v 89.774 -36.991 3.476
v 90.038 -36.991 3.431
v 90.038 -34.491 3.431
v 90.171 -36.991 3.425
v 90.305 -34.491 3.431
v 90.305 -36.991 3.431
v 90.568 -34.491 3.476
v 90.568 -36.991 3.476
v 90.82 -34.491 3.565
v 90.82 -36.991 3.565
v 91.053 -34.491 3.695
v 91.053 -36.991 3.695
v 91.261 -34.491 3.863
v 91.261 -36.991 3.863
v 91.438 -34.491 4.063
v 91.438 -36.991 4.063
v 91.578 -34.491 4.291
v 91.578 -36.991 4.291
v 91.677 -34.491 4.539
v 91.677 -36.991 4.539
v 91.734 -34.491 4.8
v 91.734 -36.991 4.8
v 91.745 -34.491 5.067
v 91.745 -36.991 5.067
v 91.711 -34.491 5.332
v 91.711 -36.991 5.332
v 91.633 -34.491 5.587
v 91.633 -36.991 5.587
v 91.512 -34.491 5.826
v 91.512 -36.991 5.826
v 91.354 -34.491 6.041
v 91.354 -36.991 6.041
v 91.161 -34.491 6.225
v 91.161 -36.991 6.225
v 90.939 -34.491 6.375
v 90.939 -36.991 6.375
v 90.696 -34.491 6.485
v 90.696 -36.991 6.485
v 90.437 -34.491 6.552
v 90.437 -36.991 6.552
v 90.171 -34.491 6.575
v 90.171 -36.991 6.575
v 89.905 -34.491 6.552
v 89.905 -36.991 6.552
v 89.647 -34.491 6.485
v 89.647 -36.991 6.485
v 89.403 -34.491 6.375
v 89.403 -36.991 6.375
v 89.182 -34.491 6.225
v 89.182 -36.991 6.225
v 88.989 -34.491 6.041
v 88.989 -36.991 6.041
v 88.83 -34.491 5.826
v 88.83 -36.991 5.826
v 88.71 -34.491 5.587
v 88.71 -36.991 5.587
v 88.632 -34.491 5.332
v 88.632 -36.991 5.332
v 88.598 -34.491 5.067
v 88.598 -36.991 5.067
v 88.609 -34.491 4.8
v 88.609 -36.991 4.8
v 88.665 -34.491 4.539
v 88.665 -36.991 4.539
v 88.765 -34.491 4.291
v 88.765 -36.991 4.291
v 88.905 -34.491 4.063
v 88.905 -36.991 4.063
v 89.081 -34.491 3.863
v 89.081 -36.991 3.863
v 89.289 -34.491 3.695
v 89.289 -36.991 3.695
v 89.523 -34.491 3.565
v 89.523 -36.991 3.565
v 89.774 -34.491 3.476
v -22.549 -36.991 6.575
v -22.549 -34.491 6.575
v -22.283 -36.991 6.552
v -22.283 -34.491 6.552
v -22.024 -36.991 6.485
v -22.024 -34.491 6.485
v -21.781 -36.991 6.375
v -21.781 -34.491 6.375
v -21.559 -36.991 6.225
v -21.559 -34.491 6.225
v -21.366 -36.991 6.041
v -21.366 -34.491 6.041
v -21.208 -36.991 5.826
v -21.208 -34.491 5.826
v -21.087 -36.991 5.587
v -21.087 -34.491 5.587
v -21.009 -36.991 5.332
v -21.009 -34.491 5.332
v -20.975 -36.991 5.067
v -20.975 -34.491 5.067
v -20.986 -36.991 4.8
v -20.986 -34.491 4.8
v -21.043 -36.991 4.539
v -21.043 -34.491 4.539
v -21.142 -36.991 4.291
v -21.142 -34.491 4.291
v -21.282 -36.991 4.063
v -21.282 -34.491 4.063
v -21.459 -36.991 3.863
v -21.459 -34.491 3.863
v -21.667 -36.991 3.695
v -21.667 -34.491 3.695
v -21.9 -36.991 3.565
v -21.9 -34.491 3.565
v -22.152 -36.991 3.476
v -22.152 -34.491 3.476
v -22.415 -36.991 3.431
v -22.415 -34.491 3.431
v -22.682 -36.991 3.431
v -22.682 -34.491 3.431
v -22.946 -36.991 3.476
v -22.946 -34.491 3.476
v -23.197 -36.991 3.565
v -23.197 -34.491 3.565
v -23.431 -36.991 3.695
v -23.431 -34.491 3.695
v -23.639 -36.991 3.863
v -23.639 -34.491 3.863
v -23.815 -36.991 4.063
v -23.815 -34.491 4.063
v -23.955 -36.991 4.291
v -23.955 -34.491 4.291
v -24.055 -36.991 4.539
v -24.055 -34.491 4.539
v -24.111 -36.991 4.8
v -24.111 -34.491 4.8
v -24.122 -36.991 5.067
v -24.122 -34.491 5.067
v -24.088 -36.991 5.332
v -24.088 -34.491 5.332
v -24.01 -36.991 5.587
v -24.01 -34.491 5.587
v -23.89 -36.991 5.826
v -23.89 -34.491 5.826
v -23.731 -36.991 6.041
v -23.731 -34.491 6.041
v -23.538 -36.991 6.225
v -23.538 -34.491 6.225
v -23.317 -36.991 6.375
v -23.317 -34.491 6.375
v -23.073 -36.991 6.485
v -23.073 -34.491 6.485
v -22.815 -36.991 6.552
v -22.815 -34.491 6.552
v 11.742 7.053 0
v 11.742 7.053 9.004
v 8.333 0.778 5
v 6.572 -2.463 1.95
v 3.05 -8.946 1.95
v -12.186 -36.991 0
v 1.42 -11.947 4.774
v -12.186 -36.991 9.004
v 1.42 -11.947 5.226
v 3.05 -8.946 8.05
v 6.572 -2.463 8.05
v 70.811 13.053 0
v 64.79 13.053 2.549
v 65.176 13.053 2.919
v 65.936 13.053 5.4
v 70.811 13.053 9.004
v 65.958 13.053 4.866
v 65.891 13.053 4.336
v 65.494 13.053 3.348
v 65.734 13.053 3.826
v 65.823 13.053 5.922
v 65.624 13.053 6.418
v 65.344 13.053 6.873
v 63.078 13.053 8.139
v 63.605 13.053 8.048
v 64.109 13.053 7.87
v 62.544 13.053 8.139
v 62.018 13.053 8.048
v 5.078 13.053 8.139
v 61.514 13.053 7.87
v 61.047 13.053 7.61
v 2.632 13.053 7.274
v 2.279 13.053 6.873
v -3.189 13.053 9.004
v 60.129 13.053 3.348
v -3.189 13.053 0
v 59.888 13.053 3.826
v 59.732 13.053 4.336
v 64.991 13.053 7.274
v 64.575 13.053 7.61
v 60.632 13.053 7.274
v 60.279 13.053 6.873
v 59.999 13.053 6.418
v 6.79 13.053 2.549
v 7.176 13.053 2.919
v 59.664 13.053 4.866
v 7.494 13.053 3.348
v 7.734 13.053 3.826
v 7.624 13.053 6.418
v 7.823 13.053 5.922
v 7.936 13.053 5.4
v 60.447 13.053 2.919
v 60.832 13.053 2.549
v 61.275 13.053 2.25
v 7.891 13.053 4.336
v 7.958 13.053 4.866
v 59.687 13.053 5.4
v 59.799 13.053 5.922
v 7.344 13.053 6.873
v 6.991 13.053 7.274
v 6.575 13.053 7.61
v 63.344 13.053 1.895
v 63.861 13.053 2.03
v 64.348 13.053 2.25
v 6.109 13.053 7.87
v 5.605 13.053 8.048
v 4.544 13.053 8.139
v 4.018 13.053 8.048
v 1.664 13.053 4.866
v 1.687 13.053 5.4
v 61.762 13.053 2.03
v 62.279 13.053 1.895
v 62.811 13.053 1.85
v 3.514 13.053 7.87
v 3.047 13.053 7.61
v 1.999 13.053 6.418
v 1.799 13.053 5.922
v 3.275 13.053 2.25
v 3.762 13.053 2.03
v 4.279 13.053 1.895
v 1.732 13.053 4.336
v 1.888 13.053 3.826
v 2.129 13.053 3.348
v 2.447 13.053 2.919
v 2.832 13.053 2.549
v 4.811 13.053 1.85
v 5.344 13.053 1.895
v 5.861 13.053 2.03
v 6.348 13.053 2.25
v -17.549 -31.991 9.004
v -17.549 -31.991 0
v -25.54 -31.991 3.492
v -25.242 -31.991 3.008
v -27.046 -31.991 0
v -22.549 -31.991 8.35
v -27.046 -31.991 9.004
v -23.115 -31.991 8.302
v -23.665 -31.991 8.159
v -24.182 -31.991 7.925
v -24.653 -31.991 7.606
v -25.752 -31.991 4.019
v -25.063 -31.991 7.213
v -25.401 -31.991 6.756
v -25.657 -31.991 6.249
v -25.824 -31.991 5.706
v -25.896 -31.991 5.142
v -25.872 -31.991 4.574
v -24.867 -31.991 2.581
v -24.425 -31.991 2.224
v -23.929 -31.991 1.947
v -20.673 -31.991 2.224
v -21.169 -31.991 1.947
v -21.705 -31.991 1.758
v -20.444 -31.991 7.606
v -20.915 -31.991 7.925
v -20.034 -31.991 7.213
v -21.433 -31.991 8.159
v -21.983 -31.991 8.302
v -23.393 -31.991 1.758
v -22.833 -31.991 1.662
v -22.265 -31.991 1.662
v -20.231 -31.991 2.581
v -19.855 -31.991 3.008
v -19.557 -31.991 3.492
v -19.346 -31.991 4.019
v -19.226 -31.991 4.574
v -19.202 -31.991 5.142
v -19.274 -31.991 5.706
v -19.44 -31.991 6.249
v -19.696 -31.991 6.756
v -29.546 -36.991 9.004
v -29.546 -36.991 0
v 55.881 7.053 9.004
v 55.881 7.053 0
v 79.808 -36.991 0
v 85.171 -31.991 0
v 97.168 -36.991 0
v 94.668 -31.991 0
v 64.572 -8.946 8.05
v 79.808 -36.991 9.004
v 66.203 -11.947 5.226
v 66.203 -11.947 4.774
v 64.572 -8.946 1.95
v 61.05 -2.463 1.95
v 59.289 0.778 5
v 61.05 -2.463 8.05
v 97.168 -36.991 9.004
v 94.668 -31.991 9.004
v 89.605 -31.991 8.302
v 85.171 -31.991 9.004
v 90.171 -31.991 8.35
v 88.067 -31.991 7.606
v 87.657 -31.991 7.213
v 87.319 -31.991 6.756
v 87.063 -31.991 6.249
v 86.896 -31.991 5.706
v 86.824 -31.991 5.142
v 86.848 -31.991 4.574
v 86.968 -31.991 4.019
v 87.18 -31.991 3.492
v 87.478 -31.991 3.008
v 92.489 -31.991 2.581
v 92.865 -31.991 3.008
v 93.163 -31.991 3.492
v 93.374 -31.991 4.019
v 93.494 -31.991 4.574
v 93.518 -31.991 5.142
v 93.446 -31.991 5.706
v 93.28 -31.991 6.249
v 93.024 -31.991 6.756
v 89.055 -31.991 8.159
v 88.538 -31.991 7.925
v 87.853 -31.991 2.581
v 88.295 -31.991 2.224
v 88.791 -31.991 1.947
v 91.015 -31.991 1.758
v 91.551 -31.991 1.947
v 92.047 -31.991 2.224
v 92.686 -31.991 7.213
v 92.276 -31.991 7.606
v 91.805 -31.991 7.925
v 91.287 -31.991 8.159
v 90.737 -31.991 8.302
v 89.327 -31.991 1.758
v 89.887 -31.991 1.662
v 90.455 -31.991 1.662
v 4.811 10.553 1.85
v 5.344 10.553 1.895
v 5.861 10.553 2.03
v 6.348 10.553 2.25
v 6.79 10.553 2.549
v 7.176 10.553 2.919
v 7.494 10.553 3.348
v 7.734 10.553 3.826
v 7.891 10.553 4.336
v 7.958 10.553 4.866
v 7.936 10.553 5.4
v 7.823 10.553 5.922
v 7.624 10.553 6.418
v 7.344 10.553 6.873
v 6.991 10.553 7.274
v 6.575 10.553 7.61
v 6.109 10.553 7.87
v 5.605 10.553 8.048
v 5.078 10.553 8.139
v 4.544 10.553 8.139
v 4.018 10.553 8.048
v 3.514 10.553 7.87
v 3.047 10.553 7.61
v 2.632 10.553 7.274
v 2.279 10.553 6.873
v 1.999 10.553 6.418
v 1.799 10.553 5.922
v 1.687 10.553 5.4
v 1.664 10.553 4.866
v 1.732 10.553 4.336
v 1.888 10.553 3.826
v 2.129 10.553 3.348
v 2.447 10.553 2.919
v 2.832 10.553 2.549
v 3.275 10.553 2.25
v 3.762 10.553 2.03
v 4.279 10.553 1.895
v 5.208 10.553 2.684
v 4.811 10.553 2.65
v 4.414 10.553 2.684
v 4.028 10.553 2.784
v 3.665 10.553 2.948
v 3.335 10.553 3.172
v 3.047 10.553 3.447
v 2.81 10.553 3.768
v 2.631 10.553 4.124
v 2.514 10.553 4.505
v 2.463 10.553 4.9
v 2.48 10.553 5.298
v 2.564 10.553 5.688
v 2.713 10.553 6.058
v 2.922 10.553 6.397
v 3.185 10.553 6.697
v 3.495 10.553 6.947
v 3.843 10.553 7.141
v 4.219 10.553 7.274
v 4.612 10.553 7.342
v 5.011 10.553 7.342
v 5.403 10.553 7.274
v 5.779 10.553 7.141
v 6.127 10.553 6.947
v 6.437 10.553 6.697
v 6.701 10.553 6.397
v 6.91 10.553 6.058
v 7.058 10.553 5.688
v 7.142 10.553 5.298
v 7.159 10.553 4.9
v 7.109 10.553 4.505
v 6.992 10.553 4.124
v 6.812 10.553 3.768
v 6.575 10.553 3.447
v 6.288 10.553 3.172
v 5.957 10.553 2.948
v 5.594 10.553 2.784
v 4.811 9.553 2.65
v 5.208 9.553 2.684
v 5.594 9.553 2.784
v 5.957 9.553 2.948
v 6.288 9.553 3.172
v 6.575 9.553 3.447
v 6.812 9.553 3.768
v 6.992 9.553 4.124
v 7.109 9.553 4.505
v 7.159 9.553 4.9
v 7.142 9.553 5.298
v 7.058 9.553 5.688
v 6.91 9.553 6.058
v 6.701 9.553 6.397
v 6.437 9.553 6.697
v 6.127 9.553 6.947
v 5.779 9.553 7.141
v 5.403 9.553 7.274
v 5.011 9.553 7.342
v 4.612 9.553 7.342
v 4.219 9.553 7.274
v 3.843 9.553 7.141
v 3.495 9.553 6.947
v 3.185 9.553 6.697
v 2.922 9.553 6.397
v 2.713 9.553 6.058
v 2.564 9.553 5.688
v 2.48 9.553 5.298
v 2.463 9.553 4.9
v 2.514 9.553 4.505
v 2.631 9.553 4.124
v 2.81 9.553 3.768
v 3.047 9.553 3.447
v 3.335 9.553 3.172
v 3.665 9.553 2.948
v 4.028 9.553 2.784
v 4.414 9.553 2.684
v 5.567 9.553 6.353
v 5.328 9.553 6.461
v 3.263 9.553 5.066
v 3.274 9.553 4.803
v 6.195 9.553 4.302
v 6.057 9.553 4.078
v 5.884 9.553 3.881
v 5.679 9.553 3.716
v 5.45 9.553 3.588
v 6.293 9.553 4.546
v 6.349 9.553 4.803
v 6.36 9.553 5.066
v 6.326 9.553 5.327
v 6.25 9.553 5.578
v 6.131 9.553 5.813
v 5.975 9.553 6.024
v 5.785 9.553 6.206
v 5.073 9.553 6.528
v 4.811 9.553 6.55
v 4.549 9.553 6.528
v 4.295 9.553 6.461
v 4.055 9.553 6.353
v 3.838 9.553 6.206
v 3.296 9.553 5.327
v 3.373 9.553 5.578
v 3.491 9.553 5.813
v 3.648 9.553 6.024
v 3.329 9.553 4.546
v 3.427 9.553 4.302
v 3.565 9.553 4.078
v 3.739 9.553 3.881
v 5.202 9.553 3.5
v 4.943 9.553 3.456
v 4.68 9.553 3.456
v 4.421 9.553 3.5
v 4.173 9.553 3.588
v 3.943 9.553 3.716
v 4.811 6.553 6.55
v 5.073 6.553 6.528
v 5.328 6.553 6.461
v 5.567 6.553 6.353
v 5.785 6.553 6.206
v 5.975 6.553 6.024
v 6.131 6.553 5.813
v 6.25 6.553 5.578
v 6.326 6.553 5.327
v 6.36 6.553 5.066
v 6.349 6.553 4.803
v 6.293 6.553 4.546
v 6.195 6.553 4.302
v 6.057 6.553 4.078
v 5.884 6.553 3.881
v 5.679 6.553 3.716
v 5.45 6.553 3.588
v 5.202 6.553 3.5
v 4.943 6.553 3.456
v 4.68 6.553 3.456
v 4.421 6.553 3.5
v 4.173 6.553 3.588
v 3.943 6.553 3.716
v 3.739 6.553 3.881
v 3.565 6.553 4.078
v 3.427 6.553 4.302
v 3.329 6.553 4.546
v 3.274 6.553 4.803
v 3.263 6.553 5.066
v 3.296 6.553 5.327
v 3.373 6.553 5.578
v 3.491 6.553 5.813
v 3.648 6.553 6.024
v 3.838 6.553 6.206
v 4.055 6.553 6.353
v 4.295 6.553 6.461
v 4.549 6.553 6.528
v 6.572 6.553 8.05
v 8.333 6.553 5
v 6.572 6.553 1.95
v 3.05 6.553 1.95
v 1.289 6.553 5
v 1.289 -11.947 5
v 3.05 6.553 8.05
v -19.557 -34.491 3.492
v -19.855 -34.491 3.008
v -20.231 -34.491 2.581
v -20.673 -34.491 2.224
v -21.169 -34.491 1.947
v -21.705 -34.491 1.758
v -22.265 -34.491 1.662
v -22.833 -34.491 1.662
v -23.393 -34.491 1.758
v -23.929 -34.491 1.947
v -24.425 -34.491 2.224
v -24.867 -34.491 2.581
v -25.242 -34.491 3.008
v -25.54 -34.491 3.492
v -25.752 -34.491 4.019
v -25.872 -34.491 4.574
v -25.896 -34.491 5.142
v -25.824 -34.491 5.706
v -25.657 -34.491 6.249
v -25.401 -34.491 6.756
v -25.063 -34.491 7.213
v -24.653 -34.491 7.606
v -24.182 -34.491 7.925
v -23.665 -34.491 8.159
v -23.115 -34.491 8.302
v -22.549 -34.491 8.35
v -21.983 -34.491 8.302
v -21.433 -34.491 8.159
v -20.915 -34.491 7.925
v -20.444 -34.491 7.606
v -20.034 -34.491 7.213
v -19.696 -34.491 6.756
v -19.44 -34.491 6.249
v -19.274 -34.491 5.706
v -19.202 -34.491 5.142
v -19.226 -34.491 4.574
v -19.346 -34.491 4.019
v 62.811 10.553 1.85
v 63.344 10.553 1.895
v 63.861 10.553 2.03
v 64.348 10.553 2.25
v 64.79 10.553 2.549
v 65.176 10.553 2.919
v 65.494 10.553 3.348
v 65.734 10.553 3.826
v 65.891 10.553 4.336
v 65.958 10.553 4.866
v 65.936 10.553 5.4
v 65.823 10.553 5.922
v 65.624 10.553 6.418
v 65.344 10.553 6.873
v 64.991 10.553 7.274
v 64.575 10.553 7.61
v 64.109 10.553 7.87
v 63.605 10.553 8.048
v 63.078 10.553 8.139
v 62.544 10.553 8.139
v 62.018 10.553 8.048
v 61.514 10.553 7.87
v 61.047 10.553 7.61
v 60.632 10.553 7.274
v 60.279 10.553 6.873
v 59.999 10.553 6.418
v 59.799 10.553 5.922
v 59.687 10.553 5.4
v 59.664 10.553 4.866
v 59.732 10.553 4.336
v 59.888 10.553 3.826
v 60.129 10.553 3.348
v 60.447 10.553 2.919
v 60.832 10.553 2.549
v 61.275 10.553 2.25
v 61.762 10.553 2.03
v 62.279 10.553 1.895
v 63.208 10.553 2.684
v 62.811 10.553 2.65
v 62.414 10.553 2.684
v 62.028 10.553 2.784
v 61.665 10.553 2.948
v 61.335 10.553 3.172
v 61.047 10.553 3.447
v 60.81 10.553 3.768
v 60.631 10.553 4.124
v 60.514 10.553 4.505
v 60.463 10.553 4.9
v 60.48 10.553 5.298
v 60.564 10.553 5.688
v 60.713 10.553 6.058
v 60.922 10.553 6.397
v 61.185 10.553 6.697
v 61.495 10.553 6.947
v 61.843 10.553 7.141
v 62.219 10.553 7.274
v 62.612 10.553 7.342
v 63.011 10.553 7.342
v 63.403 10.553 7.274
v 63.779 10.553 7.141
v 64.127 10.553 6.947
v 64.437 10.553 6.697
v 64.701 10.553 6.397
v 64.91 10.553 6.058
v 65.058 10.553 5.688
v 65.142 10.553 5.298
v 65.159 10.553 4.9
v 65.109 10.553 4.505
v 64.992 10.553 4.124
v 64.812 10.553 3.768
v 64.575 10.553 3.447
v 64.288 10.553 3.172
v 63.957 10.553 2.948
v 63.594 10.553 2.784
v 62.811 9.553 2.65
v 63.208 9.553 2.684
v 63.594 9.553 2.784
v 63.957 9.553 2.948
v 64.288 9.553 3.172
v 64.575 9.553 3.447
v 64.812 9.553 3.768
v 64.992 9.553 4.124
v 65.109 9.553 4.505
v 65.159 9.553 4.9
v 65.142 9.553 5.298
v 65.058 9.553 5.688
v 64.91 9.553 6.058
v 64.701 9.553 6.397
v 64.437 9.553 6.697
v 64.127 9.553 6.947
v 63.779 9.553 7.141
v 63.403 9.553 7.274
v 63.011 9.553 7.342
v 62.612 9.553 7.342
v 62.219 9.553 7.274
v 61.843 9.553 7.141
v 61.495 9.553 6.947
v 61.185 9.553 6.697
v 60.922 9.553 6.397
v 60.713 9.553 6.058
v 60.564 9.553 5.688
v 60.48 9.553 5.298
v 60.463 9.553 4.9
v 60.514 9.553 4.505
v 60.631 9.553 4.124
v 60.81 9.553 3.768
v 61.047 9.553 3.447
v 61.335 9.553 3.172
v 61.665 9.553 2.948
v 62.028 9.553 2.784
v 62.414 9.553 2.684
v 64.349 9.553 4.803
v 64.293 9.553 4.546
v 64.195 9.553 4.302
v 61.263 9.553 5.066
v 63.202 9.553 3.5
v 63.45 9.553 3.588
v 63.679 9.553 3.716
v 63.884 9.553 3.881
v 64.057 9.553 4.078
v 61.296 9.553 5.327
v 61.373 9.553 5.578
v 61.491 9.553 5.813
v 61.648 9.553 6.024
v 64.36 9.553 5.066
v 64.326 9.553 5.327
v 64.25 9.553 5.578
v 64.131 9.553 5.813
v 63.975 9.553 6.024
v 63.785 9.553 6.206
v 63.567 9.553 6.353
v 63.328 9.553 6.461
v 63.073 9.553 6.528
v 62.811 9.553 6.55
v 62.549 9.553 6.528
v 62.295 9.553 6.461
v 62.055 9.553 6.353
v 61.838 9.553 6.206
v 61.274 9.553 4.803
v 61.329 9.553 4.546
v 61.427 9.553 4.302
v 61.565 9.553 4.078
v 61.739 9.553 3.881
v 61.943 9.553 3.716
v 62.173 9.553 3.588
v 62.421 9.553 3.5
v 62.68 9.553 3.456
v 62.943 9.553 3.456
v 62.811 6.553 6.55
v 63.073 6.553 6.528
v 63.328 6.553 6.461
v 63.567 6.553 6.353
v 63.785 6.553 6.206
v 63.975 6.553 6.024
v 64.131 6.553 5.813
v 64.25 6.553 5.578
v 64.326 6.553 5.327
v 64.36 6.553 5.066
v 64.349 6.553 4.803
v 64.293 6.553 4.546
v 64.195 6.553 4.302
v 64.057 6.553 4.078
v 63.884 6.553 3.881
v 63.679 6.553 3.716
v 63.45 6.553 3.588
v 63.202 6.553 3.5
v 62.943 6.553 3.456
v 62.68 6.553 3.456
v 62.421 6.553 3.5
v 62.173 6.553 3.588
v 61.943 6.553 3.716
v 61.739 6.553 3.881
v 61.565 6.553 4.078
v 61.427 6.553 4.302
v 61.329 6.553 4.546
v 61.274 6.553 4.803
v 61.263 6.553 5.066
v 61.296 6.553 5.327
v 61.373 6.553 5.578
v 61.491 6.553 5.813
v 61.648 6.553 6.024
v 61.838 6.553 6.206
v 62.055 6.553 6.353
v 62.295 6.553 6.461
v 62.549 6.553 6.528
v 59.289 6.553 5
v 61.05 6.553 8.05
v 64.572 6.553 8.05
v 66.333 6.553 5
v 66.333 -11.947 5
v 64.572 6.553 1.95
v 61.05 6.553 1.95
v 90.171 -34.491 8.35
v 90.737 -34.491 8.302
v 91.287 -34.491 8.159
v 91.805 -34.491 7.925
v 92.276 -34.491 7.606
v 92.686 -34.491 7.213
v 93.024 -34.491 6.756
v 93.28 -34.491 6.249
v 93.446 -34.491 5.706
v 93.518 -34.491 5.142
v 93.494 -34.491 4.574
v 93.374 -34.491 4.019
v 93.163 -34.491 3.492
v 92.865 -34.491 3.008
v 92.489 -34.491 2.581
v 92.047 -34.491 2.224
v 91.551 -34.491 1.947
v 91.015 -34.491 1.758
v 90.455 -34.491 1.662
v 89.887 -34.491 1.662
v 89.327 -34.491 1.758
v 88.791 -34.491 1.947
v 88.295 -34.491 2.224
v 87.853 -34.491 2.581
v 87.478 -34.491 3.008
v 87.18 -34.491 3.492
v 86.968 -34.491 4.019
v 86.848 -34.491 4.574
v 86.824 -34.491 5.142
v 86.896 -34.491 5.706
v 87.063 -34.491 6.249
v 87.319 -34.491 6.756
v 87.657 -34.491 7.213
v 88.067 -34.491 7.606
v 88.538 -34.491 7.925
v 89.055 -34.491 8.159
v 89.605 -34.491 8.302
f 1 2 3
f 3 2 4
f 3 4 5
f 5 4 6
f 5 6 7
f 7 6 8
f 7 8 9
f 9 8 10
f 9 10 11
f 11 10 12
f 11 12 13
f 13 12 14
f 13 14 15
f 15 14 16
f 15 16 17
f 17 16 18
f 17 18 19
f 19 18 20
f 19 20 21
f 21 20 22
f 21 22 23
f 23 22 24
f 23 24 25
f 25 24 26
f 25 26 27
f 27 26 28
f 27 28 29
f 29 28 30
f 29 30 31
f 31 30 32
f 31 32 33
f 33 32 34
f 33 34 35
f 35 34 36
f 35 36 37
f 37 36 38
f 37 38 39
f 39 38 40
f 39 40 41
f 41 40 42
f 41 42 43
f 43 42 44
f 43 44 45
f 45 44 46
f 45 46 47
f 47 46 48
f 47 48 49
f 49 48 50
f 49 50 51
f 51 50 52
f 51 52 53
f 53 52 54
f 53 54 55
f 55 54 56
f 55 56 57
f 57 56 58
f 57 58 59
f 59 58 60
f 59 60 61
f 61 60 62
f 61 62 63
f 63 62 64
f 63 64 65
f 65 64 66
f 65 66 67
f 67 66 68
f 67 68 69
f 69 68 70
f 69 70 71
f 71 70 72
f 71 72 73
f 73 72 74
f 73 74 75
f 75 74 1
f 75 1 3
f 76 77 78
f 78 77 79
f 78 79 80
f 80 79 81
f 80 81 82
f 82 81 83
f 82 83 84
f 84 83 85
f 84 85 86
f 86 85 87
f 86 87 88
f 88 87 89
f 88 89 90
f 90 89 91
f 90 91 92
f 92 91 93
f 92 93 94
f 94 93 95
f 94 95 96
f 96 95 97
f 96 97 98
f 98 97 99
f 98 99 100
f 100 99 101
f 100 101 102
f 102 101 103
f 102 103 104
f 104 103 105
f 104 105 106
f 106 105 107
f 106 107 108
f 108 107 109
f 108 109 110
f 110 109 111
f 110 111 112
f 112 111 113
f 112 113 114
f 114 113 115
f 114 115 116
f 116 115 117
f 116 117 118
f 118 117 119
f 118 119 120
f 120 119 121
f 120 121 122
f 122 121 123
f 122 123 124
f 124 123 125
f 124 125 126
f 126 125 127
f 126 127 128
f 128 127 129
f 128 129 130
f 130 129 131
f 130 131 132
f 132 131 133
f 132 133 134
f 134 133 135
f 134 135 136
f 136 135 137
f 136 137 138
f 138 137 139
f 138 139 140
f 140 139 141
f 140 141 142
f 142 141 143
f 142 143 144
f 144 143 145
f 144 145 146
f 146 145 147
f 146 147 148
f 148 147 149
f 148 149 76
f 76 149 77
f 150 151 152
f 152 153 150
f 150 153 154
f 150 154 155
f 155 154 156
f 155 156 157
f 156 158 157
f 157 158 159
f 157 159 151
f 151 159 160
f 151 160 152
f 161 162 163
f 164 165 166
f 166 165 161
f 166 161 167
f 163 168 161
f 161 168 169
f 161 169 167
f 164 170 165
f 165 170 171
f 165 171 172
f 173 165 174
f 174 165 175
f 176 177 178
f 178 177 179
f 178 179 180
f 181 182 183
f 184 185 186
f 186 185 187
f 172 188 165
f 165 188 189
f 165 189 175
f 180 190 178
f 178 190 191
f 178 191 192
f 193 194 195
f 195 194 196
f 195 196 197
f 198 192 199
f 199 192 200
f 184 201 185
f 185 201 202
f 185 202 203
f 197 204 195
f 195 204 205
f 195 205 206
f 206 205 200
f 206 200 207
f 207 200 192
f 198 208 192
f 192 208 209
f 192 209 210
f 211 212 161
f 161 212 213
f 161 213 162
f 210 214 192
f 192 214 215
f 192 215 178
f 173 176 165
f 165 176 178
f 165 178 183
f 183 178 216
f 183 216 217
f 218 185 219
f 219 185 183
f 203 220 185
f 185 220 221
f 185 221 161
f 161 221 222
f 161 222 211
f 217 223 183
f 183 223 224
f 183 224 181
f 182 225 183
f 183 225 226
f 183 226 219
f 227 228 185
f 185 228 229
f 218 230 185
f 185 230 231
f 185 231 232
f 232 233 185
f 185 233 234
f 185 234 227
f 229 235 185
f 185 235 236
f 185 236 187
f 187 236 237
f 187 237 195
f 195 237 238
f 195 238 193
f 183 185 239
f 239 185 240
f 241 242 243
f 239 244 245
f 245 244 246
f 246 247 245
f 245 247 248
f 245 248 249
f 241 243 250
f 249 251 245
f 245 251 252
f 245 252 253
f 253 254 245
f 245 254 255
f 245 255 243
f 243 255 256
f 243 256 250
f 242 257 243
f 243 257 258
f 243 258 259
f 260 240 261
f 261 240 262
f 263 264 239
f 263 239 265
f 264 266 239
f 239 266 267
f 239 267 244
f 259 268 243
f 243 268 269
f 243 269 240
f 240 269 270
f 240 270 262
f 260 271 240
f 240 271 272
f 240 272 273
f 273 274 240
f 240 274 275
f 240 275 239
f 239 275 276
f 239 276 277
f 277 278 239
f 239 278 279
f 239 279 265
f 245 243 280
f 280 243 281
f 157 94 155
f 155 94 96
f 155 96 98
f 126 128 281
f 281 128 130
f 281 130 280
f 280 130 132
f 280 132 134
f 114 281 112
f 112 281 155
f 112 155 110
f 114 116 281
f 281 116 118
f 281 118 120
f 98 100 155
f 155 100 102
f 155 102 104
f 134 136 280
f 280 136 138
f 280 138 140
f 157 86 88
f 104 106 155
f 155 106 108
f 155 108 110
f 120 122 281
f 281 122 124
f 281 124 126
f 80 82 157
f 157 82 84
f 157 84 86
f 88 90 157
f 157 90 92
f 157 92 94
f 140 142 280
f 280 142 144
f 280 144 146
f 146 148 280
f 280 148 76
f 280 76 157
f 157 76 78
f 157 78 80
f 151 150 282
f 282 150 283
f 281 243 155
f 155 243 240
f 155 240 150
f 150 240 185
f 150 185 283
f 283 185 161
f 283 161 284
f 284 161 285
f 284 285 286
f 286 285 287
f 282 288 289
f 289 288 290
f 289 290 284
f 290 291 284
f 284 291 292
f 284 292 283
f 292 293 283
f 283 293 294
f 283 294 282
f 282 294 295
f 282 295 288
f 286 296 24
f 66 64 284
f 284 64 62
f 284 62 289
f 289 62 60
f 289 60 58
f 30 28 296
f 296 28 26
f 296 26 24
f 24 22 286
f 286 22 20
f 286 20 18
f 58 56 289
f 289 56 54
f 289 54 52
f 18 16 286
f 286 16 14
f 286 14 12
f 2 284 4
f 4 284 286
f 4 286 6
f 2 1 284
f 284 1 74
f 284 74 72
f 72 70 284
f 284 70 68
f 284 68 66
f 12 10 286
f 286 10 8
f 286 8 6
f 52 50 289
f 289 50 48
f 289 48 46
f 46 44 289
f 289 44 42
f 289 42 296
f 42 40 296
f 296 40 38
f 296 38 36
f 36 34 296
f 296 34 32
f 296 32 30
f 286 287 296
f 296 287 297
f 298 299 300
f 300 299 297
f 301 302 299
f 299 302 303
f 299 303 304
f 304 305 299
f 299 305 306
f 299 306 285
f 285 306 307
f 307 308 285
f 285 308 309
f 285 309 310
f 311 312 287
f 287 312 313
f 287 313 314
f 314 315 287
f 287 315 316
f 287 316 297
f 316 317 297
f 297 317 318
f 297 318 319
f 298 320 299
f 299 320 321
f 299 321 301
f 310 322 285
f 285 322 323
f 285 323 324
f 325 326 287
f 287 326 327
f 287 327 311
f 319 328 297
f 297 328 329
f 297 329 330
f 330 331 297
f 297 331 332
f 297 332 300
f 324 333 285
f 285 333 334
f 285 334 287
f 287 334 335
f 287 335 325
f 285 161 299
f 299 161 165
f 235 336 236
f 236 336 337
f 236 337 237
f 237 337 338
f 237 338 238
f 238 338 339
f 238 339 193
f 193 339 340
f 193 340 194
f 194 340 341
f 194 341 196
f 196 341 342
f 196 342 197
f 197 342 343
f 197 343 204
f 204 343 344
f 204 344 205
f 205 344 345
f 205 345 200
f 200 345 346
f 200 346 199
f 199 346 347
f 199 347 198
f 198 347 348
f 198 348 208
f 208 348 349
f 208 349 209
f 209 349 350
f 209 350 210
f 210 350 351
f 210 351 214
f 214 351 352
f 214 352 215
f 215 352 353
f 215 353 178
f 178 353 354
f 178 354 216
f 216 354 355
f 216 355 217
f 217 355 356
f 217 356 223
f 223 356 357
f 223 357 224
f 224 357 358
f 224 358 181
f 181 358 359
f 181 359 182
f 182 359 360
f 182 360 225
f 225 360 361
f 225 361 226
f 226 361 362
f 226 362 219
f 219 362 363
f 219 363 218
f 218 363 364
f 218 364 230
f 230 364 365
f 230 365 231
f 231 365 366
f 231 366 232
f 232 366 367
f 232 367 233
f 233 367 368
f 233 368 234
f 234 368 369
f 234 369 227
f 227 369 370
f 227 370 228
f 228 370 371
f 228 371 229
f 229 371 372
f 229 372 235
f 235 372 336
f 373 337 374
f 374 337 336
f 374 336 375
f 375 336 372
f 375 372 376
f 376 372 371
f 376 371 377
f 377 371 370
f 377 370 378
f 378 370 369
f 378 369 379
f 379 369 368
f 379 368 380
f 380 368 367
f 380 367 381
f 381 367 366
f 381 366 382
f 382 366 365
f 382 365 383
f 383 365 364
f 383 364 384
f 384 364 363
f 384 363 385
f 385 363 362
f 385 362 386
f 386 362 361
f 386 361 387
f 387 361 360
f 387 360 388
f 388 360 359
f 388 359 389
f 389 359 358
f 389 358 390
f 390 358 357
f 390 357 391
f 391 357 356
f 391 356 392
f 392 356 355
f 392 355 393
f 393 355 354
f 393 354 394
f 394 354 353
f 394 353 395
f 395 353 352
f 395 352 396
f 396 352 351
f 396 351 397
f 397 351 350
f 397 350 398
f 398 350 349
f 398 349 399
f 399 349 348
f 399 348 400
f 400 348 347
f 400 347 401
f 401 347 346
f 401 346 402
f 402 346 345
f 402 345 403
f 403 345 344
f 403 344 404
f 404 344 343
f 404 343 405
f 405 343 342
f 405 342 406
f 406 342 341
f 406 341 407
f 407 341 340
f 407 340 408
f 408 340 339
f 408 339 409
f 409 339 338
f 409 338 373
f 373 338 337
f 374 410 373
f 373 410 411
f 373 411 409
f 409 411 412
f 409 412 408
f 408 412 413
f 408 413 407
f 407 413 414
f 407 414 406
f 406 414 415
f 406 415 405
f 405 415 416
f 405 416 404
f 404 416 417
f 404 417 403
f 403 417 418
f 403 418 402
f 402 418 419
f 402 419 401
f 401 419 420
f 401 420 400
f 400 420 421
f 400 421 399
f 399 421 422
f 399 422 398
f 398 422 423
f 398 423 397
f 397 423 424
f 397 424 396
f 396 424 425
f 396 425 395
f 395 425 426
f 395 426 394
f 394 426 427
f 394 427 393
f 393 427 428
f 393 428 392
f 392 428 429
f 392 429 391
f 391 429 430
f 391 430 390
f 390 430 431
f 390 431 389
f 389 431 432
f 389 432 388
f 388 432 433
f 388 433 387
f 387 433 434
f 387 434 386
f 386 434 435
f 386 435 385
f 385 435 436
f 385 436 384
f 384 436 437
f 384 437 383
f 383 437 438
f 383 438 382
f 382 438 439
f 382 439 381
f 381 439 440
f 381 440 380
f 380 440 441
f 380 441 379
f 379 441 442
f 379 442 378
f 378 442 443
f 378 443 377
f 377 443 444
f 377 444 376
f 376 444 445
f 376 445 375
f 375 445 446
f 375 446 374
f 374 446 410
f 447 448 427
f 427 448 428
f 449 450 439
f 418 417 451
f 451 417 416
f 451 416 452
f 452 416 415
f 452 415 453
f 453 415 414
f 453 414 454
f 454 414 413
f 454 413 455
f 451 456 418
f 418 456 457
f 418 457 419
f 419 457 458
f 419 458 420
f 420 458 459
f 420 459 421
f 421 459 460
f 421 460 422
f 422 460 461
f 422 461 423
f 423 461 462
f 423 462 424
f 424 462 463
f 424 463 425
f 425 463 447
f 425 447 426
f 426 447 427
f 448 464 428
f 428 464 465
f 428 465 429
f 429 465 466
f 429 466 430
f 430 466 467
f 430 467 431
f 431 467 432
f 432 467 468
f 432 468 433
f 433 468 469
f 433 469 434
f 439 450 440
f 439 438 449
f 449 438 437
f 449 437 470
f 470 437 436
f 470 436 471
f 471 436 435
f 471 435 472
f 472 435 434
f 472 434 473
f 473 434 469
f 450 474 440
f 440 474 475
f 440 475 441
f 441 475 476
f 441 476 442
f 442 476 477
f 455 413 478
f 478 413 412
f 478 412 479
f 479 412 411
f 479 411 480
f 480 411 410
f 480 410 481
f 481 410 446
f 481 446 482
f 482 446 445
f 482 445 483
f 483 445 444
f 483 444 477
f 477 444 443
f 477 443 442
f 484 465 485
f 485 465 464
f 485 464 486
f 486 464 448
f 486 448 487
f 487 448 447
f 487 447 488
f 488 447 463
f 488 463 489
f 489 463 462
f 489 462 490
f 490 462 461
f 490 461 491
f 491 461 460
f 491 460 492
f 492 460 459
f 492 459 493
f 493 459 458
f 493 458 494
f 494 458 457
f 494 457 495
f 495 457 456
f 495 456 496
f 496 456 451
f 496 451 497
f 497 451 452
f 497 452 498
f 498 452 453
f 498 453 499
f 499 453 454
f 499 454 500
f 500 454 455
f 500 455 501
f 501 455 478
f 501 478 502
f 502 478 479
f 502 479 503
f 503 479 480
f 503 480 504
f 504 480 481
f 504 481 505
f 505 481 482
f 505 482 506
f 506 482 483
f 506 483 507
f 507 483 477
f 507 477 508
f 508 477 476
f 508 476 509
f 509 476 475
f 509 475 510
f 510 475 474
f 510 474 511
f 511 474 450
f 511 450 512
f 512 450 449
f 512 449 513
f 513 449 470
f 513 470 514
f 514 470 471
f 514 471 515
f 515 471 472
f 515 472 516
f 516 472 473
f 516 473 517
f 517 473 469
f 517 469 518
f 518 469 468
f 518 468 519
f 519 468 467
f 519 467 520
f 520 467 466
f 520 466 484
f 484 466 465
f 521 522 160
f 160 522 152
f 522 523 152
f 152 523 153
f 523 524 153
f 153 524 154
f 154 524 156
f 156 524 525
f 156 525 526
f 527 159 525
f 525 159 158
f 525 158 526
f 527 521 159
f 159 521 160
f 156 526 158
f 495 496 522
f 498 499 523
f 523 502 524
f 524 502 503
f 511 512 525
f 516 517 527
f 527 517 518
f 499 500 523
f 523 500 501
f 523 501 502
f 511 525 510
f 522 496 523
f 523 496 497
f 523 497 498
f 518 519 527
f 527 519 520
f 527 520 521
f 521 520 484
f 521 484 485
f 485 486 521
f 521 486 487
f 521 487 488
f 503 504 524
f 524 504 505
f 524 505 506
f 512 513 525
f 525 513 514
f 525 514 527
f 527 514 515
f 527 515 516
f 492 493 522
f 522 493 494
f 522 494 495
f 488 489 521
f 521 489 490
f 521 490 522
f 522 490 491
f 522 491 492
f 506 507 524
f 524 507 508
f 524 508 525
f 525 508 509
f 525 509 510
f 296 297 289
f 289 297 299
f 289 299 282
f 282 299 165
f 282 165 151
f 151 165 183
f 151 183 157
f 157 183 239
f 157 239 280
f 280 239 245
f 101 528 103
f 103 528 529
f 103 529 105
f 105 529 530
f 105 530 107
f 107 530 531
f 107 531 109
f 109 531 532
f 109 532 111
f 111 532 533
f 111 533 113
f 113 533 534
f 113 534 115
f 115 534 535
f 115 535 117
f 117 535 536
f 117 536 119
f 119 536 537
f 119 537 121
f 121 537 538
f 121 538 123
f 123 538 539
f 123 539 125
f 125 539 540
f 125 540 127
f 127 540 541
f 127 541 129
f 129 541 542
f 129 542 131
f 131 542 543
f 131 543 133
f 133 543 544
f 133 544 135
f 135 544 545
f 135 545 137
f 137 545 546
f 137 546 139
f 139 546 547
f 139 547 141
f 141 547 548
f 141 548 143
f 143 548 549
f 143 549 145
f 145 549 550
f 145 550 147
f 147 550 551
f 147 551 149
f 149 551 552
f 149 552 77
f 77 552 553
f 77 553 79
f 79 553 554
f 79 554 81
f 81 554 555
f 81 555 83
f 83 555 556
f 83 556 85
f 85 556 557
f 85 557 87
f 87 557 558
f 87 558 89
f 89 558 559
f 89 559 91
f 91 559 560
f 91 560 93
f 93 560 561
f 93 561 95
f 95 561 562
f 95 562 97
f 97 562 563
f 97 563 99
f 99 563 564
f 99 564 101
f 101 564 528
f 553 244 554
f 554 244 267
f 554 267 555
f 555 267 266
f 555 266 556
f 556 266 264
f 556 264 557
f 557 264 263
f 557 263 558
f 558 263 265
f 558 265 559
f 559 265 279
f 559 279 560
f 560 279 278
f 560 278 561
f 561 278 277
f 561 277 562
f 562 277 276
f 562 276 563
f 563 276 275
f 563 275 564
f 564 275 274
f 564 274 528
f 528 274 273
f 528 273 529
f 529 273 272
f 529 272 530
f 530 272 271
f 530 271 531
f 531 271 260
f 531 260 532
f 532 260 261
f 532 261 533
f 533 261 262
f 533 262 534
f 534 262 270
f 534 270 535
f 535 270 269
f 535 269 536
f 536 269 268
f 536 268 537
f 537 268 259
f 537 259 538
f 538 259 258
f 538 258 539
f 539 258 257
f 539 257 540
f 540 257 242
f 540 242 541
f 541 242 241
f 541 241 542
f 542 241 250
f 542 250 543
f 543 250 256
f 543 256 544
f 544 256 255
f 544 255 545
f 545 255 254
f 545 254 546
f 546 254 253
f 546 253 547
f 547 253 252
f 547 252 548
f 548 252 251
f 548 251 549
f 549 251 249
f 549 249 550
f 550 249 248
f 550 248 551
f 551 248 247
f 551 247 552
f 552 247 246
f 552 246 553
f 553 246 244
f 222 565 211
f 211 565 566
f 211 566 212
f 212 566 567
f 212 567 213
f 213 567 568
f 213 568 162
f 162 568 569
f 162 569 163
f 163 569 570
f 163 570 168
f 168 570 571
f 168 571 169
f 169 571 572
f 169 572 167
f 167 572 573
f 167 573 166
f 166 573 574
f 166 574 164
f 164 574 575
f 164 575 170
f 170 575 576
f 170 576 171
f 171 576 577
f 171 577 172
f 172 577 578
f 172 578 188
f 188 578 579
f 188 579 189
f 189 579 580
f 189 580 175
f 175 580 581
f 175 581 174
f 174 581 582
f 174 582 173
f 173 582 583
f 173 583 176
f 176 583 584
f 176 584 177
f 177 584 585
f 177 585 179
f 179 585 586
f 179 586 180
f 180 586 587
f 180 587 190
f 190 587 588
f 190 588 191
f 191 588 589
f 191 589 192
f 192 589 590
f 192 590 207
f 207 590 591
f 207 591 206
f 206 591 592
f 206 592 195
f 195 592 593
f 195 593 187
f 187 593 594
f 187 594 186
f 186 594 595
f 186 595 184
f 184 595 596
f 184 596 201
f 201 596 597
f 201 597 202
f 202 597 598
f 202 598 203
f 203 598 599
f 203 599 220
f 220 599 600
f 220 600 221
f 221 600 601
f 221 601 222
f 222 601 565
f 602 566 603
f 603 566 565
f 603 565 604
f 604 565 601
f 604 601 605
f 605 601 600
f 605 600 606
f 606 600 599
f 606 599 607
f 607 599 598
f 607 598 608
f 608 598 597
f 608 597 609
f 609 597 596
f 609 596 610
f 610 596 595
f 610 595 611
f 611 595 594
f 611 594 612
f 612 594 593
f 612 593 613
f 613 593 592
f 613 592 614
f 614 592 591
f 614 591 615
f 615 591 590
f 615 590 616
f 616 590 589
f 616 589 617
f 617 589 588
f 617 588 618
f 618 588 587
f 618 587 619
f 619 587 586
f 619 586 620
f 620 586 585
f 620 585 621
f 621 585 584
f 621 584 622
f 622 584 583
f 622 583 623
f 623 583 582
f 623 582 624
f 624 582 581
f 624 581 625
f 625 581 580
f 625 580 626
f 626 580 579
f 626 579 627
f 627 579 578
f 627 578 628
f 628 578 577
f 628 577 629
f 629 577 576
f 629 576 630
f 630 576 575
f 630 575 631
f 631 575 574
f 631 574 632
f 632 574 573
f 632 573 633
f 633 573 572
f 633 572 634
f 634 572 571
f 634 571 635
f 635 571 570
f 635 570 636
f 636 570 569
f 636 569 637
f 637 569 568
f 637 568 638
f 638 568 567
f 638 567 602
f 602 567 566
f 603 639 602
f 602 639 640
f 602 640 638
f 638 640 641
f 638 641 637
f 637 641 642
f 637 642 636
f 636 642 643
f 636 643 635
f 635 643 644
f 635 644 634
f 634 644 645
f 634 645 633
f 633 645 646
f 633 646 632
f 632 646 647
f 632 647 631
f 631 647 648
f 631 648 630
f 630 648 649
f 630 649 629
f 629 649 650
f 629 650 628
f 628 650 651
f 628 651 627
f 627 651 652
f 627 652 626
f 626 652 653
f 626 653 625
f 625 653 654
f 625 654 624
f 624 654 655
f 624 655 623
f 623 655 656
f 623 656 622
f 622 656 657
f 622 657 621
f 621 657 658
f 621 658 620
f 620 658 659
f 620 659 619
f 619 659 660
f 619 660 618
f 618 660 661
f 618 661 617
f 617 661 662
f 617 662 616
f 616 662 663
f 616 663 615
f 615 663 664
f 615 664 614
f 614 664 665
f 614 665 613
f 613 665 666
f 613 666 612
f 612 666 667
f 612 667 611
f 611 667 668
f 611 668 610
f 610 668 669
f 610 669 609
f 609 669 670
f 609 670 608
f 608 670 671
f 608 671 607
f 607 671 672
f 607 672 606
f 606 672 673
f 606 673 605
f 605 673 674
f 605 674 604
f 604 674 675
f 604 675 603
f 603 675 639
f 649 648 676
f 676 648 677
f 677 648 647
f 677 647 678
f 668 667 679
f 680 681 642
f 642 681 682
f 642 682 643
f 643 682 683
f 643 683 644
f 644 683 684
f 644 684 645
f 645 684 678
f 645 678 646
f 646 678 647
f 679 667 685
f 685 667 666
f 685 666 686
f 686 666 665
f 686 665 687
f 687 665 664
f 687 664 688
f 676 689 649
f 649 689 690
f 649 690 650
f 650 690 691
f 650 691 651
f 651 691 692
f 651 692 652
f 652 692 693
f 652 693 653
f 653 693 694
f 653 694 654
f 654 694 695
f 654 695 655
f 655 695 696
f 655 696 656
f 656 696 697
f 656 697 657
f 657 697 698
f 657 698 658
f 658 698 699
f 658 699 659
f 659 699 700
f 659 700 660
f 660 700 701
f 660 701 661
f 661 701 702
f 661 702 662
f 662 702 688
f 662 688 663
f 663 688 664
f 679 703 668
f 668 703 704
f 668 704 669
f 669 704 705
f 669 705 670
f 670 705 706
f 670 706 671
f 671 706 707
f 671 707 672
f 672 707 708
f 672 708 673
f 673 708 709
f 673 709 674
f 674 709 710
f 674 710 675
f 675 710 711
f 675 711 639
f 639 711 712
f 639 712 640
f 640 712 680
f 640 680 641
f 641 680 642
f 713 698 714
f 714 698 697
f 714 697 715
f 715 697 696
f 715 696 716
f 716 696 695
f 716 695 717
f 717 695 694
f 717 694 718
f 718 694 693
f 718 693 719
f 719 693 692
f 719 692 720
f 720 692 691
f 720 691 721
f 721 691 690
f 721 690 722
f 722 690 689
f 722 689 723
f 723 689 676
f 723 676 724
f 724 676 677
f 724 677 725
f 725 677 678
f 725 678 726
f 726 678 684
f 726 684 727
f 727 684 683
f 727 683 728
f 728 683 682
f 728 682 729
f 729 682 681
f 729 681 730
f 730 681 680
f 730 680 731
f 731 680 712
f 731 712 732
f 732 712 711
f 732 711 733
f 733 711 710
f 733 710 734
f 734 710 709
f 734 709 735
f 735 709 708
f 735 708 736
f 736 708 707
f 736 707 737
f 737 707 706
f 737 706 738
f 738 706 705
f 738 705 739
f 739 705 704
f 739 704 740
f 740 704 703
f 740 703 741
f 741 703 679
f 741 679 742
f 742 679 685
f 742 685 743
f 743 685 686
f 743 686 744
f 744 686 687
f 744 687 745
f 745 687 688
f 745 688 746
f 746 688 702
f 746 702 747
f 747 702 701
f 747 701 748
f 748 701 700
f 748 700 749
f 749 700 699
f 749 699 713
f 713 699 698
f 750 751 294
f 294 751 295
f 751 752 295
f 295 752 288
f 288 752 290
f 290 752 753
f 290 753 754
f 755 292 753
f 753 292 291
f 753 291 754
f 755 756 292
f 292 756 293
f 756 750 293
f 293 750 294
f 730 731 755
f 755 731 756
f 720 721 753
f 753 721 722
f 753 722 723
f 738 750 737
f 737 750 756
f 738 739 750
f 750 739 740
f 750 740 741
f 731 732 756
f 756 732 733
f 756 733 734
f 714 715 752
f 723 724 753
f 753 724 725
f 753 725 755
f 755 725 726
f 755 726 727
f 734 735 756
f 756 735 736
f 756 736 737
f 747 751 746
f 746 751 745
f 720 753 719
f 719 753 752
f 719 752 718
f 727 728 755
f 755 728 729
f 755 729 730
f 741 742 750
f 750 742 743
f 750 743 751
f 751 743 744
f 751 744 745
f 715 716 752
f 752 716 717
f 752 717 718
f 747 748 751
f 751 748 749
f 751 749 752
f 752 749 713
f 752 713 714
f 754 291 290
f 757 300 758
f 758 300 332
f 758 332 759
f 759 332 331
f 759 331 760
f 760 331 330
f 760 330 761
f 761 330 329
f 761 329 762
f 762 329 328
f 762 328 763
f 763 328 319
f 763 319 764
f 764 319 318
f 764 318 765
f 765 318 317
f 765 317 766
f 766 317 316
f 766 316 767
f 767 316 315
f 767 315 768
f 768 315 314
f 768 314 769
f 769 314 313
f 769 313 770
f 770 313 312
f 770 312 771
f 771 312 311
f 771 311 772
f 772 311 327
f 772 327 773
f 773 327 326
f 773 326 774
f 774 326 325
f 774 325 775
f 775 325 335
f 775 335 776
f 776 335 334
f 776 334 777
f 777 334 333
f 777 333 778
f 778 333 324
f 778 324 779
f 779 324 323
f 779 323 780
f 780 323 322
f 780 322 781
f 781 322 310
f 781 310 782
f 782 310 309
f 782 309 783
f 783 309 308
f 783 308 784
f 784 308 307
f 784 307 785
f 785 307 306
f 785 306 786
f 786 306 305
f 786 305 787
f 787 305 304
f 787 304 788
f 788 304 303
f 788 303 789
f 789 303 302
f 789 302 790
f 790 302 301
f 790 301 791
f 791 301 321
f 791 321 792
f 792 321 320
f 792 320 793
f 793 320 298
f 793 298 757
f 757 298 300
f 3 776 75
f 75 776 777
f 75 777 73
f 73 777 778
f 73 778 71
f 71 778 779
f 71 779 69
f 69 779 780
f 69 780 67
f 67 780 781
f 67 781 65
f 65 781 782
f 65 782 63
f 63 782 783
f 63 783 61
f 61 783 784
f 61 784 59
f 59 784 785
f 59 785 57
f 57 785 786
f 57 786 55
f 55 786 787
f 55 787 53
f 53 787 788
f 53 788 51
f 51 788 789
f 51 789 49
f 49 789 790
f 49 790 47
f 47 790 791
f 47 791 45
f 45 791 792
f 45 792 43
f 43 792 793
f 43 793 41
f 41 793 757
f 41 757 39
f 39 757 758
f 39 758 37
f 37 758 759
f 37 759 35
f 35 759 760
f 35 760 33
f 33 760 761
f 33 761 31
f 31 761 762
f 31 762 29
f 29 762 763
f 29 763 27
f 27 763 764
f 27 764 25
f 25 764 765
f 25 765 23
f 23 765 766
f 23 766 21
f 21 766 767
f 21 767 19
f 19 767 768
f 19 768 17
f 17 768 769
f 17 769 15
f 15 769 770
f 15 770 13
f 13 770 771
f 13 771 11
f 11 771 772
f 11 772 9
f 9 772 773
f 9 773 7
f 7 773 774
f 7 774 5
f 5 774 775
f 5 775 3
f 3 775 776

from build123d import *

# Parameters (mm, degrees)
EXTRUDE_1_DEPTH      = 10
SKETCH_7_R           = 1.55
CUT_EXTRUDE_1_DEPTH  = 47.544157215
CUT_EXTRUDE_2_DEPTH  = 18.5
SKETCH_19_W          = 126.714157214
SKETCH_19_H          = 0.99604336
CUT_EXTRUDE_14_DEPTH = 51.044157215
SKETCH_23_R          = 1.575
CUT_EXTRUDE_16_DEPTH = 10
SKETCH_24_R          = 3.35
CUT_EXTRUDE_17_DEPTH = 2.5


with BuildPart() as part:
    # 草图1 → 凸台-拉伸1 (new body)
    with BuildSketch(Plane.XY):
        Polygon((-3.188712924, 13.052848472), (33.811287076, 13.052848472), (33.811287076, 7.052848472), (15.60198174, 7.052848472), (11.74198174, 7.052848472), (-12.185815886, -36.991308743), (-14.185815886, -36.991308743), (-29.545791531, -36.991308743), (-27.045791531, -31.991308743), (-17.548712924, -31.991308743), align=None)
    extrude_1 = extrude(amount=EXTRUDE_1_DEPTH)

    # 镜向1: 凸台-拉伸1 across plane
    add(extrude_1.mirror(Plane(origin=(33.811287076, 13.052848472, 10), x_dir=(0, 0, 1), z_dir=(-1, 0, 0))))

    # 草图5 → 切除-旋转7 (revolve, cut)
    with BuildSketch(Plane.XY.offset(5)):
        Polygon((7.961287076, 13.052848472), (7.961287076, 10.552848472), (7.161287076, 10.552848472), (7.161287076, 9.552848472), (6.361287076, 9.552848472), (4.811287076, 9.552848472), (4.811287076, 13.052848472), align=None)
    cut_revolve_7 = revolve(axis=Axis((4.811287076, 9.552848472, 5), (0, 1, 0)), mode=Mode.SUBTRACT)

    # 草图7 → 切除-拉伸1 (cut, through all)
    with BuildSketch(Plane(origin=(0, 9.552848472, 0), x_dir=(1, 0, 0), z_dir=(0, 1, 0))):
        with Locations((4.811287076, -5)):
            Circle(SKETCH_7_R)
    cut_extrude_1 = extrude(amount=-CUT_EXTRUDE_1_DEPTH, mode=Mode.SUBTRACT)

    # 草图8 → 切除-拉伸2 (cut)
    with BuildSketch(Plane(origin=(0, -11.947151528, 0), x_dir=(1, 0, 0), z_dir=(0, 1, 0))):
        Polygon((8.333123718, -5), (6.572205397, -1.95), (3.050368755, -1.95), (1.289450434, -5), (3.050368755, -8.05), (6.572205397, -8.05), align=None)
    cut_extrude_2 = extrude(amount=CUT_EXTRUDE_2_DEPTH, mode=Mode.SUBTRACT)

    # 草图19 → 切除-拉伸14 (cut, through all)
    with BuildSketch(Plane(origin=(0, 13.052848472, 0), x_dir=(1, 0, 0), z_dir=(0, 1, 0))):
        with Locations((33.811287076, -9.50197832)):
            Rectangle(SKETCH_19_W, SKETCH_19_H)
    extrude(amount=-CUT_EXTRUDE_14_DEPTH, mode=Mode.SUBTRACT)

    # 草图23 → 切除-拉伸16 (cut)
    with BuildSketch(Plane(origin=(0, -31.991308743, 0), x_dir=(1, 0, 0), z_dir=(0, 1, 0))):
        with Locations((-22.548712924, -5)):
            Circle(SKETCH_23_R)
    cut_extrude_16 = extrude(amount=-CUT_EXTRUDE_16_DEPTH, mode=Mode.SUBTRACT)

    # 草图24 → 切除-拉伸17 (cut)
    with BuildSketch(Plane(origin=(0, -31.991308743, 0), x_dir=(1, 0, 0), z_dir=(0, 1, 0))):
        with Locations((-22.548712924, -5)):
            Circle(SKETCH_24_R)
    cut_extrude_17 = extrude(amount=-CUT_EXTRUDE_17_DEPTH, mode=Mode.SUBTRACT)

    # 镜向3: 切除-旋转7, 切除-拉伸1, 切除-拉伸2, 切除-拉伸16, 切除-拉伸17 across plane
    add(cut_revolve_7.mirror(Plane(origin=(33.811287076, 0, 0), x_dir=(0, 0, 1), z_dir=(1, 0, 0))), mode=Mode.SUBTRACT)
    add(cut_extrude_1.mirror(Plane(origin=(33.811287076, 0, 0), x_dir=(0, 0, 1), z_dir=(1, 0, 0))), mode=Mode.SUBTRACT)
    add(cut_extrude_2.mirror(Plane(origin=(33.811287076, 0, 0), x_dir=(0, 0, 1), z_dir=(1, 0, 0))), mode=Mode.SUBTRACT)
    add(cut_extrude_16.mirror(Plane(origin=(33.811287076, 0, 0), x_dir=(0, 0, 1), z_dir=(1, 0, 0))), mode=Mode.SUBTRACT)
    add(cut_extrude_17.mirror(Plane(origin=(33.811287076, 0, 0), x_dir=(0, 0, 1), z_dir=(1, 0, 0))), mode=Mode.SUBTRACT)


solid = part.part
